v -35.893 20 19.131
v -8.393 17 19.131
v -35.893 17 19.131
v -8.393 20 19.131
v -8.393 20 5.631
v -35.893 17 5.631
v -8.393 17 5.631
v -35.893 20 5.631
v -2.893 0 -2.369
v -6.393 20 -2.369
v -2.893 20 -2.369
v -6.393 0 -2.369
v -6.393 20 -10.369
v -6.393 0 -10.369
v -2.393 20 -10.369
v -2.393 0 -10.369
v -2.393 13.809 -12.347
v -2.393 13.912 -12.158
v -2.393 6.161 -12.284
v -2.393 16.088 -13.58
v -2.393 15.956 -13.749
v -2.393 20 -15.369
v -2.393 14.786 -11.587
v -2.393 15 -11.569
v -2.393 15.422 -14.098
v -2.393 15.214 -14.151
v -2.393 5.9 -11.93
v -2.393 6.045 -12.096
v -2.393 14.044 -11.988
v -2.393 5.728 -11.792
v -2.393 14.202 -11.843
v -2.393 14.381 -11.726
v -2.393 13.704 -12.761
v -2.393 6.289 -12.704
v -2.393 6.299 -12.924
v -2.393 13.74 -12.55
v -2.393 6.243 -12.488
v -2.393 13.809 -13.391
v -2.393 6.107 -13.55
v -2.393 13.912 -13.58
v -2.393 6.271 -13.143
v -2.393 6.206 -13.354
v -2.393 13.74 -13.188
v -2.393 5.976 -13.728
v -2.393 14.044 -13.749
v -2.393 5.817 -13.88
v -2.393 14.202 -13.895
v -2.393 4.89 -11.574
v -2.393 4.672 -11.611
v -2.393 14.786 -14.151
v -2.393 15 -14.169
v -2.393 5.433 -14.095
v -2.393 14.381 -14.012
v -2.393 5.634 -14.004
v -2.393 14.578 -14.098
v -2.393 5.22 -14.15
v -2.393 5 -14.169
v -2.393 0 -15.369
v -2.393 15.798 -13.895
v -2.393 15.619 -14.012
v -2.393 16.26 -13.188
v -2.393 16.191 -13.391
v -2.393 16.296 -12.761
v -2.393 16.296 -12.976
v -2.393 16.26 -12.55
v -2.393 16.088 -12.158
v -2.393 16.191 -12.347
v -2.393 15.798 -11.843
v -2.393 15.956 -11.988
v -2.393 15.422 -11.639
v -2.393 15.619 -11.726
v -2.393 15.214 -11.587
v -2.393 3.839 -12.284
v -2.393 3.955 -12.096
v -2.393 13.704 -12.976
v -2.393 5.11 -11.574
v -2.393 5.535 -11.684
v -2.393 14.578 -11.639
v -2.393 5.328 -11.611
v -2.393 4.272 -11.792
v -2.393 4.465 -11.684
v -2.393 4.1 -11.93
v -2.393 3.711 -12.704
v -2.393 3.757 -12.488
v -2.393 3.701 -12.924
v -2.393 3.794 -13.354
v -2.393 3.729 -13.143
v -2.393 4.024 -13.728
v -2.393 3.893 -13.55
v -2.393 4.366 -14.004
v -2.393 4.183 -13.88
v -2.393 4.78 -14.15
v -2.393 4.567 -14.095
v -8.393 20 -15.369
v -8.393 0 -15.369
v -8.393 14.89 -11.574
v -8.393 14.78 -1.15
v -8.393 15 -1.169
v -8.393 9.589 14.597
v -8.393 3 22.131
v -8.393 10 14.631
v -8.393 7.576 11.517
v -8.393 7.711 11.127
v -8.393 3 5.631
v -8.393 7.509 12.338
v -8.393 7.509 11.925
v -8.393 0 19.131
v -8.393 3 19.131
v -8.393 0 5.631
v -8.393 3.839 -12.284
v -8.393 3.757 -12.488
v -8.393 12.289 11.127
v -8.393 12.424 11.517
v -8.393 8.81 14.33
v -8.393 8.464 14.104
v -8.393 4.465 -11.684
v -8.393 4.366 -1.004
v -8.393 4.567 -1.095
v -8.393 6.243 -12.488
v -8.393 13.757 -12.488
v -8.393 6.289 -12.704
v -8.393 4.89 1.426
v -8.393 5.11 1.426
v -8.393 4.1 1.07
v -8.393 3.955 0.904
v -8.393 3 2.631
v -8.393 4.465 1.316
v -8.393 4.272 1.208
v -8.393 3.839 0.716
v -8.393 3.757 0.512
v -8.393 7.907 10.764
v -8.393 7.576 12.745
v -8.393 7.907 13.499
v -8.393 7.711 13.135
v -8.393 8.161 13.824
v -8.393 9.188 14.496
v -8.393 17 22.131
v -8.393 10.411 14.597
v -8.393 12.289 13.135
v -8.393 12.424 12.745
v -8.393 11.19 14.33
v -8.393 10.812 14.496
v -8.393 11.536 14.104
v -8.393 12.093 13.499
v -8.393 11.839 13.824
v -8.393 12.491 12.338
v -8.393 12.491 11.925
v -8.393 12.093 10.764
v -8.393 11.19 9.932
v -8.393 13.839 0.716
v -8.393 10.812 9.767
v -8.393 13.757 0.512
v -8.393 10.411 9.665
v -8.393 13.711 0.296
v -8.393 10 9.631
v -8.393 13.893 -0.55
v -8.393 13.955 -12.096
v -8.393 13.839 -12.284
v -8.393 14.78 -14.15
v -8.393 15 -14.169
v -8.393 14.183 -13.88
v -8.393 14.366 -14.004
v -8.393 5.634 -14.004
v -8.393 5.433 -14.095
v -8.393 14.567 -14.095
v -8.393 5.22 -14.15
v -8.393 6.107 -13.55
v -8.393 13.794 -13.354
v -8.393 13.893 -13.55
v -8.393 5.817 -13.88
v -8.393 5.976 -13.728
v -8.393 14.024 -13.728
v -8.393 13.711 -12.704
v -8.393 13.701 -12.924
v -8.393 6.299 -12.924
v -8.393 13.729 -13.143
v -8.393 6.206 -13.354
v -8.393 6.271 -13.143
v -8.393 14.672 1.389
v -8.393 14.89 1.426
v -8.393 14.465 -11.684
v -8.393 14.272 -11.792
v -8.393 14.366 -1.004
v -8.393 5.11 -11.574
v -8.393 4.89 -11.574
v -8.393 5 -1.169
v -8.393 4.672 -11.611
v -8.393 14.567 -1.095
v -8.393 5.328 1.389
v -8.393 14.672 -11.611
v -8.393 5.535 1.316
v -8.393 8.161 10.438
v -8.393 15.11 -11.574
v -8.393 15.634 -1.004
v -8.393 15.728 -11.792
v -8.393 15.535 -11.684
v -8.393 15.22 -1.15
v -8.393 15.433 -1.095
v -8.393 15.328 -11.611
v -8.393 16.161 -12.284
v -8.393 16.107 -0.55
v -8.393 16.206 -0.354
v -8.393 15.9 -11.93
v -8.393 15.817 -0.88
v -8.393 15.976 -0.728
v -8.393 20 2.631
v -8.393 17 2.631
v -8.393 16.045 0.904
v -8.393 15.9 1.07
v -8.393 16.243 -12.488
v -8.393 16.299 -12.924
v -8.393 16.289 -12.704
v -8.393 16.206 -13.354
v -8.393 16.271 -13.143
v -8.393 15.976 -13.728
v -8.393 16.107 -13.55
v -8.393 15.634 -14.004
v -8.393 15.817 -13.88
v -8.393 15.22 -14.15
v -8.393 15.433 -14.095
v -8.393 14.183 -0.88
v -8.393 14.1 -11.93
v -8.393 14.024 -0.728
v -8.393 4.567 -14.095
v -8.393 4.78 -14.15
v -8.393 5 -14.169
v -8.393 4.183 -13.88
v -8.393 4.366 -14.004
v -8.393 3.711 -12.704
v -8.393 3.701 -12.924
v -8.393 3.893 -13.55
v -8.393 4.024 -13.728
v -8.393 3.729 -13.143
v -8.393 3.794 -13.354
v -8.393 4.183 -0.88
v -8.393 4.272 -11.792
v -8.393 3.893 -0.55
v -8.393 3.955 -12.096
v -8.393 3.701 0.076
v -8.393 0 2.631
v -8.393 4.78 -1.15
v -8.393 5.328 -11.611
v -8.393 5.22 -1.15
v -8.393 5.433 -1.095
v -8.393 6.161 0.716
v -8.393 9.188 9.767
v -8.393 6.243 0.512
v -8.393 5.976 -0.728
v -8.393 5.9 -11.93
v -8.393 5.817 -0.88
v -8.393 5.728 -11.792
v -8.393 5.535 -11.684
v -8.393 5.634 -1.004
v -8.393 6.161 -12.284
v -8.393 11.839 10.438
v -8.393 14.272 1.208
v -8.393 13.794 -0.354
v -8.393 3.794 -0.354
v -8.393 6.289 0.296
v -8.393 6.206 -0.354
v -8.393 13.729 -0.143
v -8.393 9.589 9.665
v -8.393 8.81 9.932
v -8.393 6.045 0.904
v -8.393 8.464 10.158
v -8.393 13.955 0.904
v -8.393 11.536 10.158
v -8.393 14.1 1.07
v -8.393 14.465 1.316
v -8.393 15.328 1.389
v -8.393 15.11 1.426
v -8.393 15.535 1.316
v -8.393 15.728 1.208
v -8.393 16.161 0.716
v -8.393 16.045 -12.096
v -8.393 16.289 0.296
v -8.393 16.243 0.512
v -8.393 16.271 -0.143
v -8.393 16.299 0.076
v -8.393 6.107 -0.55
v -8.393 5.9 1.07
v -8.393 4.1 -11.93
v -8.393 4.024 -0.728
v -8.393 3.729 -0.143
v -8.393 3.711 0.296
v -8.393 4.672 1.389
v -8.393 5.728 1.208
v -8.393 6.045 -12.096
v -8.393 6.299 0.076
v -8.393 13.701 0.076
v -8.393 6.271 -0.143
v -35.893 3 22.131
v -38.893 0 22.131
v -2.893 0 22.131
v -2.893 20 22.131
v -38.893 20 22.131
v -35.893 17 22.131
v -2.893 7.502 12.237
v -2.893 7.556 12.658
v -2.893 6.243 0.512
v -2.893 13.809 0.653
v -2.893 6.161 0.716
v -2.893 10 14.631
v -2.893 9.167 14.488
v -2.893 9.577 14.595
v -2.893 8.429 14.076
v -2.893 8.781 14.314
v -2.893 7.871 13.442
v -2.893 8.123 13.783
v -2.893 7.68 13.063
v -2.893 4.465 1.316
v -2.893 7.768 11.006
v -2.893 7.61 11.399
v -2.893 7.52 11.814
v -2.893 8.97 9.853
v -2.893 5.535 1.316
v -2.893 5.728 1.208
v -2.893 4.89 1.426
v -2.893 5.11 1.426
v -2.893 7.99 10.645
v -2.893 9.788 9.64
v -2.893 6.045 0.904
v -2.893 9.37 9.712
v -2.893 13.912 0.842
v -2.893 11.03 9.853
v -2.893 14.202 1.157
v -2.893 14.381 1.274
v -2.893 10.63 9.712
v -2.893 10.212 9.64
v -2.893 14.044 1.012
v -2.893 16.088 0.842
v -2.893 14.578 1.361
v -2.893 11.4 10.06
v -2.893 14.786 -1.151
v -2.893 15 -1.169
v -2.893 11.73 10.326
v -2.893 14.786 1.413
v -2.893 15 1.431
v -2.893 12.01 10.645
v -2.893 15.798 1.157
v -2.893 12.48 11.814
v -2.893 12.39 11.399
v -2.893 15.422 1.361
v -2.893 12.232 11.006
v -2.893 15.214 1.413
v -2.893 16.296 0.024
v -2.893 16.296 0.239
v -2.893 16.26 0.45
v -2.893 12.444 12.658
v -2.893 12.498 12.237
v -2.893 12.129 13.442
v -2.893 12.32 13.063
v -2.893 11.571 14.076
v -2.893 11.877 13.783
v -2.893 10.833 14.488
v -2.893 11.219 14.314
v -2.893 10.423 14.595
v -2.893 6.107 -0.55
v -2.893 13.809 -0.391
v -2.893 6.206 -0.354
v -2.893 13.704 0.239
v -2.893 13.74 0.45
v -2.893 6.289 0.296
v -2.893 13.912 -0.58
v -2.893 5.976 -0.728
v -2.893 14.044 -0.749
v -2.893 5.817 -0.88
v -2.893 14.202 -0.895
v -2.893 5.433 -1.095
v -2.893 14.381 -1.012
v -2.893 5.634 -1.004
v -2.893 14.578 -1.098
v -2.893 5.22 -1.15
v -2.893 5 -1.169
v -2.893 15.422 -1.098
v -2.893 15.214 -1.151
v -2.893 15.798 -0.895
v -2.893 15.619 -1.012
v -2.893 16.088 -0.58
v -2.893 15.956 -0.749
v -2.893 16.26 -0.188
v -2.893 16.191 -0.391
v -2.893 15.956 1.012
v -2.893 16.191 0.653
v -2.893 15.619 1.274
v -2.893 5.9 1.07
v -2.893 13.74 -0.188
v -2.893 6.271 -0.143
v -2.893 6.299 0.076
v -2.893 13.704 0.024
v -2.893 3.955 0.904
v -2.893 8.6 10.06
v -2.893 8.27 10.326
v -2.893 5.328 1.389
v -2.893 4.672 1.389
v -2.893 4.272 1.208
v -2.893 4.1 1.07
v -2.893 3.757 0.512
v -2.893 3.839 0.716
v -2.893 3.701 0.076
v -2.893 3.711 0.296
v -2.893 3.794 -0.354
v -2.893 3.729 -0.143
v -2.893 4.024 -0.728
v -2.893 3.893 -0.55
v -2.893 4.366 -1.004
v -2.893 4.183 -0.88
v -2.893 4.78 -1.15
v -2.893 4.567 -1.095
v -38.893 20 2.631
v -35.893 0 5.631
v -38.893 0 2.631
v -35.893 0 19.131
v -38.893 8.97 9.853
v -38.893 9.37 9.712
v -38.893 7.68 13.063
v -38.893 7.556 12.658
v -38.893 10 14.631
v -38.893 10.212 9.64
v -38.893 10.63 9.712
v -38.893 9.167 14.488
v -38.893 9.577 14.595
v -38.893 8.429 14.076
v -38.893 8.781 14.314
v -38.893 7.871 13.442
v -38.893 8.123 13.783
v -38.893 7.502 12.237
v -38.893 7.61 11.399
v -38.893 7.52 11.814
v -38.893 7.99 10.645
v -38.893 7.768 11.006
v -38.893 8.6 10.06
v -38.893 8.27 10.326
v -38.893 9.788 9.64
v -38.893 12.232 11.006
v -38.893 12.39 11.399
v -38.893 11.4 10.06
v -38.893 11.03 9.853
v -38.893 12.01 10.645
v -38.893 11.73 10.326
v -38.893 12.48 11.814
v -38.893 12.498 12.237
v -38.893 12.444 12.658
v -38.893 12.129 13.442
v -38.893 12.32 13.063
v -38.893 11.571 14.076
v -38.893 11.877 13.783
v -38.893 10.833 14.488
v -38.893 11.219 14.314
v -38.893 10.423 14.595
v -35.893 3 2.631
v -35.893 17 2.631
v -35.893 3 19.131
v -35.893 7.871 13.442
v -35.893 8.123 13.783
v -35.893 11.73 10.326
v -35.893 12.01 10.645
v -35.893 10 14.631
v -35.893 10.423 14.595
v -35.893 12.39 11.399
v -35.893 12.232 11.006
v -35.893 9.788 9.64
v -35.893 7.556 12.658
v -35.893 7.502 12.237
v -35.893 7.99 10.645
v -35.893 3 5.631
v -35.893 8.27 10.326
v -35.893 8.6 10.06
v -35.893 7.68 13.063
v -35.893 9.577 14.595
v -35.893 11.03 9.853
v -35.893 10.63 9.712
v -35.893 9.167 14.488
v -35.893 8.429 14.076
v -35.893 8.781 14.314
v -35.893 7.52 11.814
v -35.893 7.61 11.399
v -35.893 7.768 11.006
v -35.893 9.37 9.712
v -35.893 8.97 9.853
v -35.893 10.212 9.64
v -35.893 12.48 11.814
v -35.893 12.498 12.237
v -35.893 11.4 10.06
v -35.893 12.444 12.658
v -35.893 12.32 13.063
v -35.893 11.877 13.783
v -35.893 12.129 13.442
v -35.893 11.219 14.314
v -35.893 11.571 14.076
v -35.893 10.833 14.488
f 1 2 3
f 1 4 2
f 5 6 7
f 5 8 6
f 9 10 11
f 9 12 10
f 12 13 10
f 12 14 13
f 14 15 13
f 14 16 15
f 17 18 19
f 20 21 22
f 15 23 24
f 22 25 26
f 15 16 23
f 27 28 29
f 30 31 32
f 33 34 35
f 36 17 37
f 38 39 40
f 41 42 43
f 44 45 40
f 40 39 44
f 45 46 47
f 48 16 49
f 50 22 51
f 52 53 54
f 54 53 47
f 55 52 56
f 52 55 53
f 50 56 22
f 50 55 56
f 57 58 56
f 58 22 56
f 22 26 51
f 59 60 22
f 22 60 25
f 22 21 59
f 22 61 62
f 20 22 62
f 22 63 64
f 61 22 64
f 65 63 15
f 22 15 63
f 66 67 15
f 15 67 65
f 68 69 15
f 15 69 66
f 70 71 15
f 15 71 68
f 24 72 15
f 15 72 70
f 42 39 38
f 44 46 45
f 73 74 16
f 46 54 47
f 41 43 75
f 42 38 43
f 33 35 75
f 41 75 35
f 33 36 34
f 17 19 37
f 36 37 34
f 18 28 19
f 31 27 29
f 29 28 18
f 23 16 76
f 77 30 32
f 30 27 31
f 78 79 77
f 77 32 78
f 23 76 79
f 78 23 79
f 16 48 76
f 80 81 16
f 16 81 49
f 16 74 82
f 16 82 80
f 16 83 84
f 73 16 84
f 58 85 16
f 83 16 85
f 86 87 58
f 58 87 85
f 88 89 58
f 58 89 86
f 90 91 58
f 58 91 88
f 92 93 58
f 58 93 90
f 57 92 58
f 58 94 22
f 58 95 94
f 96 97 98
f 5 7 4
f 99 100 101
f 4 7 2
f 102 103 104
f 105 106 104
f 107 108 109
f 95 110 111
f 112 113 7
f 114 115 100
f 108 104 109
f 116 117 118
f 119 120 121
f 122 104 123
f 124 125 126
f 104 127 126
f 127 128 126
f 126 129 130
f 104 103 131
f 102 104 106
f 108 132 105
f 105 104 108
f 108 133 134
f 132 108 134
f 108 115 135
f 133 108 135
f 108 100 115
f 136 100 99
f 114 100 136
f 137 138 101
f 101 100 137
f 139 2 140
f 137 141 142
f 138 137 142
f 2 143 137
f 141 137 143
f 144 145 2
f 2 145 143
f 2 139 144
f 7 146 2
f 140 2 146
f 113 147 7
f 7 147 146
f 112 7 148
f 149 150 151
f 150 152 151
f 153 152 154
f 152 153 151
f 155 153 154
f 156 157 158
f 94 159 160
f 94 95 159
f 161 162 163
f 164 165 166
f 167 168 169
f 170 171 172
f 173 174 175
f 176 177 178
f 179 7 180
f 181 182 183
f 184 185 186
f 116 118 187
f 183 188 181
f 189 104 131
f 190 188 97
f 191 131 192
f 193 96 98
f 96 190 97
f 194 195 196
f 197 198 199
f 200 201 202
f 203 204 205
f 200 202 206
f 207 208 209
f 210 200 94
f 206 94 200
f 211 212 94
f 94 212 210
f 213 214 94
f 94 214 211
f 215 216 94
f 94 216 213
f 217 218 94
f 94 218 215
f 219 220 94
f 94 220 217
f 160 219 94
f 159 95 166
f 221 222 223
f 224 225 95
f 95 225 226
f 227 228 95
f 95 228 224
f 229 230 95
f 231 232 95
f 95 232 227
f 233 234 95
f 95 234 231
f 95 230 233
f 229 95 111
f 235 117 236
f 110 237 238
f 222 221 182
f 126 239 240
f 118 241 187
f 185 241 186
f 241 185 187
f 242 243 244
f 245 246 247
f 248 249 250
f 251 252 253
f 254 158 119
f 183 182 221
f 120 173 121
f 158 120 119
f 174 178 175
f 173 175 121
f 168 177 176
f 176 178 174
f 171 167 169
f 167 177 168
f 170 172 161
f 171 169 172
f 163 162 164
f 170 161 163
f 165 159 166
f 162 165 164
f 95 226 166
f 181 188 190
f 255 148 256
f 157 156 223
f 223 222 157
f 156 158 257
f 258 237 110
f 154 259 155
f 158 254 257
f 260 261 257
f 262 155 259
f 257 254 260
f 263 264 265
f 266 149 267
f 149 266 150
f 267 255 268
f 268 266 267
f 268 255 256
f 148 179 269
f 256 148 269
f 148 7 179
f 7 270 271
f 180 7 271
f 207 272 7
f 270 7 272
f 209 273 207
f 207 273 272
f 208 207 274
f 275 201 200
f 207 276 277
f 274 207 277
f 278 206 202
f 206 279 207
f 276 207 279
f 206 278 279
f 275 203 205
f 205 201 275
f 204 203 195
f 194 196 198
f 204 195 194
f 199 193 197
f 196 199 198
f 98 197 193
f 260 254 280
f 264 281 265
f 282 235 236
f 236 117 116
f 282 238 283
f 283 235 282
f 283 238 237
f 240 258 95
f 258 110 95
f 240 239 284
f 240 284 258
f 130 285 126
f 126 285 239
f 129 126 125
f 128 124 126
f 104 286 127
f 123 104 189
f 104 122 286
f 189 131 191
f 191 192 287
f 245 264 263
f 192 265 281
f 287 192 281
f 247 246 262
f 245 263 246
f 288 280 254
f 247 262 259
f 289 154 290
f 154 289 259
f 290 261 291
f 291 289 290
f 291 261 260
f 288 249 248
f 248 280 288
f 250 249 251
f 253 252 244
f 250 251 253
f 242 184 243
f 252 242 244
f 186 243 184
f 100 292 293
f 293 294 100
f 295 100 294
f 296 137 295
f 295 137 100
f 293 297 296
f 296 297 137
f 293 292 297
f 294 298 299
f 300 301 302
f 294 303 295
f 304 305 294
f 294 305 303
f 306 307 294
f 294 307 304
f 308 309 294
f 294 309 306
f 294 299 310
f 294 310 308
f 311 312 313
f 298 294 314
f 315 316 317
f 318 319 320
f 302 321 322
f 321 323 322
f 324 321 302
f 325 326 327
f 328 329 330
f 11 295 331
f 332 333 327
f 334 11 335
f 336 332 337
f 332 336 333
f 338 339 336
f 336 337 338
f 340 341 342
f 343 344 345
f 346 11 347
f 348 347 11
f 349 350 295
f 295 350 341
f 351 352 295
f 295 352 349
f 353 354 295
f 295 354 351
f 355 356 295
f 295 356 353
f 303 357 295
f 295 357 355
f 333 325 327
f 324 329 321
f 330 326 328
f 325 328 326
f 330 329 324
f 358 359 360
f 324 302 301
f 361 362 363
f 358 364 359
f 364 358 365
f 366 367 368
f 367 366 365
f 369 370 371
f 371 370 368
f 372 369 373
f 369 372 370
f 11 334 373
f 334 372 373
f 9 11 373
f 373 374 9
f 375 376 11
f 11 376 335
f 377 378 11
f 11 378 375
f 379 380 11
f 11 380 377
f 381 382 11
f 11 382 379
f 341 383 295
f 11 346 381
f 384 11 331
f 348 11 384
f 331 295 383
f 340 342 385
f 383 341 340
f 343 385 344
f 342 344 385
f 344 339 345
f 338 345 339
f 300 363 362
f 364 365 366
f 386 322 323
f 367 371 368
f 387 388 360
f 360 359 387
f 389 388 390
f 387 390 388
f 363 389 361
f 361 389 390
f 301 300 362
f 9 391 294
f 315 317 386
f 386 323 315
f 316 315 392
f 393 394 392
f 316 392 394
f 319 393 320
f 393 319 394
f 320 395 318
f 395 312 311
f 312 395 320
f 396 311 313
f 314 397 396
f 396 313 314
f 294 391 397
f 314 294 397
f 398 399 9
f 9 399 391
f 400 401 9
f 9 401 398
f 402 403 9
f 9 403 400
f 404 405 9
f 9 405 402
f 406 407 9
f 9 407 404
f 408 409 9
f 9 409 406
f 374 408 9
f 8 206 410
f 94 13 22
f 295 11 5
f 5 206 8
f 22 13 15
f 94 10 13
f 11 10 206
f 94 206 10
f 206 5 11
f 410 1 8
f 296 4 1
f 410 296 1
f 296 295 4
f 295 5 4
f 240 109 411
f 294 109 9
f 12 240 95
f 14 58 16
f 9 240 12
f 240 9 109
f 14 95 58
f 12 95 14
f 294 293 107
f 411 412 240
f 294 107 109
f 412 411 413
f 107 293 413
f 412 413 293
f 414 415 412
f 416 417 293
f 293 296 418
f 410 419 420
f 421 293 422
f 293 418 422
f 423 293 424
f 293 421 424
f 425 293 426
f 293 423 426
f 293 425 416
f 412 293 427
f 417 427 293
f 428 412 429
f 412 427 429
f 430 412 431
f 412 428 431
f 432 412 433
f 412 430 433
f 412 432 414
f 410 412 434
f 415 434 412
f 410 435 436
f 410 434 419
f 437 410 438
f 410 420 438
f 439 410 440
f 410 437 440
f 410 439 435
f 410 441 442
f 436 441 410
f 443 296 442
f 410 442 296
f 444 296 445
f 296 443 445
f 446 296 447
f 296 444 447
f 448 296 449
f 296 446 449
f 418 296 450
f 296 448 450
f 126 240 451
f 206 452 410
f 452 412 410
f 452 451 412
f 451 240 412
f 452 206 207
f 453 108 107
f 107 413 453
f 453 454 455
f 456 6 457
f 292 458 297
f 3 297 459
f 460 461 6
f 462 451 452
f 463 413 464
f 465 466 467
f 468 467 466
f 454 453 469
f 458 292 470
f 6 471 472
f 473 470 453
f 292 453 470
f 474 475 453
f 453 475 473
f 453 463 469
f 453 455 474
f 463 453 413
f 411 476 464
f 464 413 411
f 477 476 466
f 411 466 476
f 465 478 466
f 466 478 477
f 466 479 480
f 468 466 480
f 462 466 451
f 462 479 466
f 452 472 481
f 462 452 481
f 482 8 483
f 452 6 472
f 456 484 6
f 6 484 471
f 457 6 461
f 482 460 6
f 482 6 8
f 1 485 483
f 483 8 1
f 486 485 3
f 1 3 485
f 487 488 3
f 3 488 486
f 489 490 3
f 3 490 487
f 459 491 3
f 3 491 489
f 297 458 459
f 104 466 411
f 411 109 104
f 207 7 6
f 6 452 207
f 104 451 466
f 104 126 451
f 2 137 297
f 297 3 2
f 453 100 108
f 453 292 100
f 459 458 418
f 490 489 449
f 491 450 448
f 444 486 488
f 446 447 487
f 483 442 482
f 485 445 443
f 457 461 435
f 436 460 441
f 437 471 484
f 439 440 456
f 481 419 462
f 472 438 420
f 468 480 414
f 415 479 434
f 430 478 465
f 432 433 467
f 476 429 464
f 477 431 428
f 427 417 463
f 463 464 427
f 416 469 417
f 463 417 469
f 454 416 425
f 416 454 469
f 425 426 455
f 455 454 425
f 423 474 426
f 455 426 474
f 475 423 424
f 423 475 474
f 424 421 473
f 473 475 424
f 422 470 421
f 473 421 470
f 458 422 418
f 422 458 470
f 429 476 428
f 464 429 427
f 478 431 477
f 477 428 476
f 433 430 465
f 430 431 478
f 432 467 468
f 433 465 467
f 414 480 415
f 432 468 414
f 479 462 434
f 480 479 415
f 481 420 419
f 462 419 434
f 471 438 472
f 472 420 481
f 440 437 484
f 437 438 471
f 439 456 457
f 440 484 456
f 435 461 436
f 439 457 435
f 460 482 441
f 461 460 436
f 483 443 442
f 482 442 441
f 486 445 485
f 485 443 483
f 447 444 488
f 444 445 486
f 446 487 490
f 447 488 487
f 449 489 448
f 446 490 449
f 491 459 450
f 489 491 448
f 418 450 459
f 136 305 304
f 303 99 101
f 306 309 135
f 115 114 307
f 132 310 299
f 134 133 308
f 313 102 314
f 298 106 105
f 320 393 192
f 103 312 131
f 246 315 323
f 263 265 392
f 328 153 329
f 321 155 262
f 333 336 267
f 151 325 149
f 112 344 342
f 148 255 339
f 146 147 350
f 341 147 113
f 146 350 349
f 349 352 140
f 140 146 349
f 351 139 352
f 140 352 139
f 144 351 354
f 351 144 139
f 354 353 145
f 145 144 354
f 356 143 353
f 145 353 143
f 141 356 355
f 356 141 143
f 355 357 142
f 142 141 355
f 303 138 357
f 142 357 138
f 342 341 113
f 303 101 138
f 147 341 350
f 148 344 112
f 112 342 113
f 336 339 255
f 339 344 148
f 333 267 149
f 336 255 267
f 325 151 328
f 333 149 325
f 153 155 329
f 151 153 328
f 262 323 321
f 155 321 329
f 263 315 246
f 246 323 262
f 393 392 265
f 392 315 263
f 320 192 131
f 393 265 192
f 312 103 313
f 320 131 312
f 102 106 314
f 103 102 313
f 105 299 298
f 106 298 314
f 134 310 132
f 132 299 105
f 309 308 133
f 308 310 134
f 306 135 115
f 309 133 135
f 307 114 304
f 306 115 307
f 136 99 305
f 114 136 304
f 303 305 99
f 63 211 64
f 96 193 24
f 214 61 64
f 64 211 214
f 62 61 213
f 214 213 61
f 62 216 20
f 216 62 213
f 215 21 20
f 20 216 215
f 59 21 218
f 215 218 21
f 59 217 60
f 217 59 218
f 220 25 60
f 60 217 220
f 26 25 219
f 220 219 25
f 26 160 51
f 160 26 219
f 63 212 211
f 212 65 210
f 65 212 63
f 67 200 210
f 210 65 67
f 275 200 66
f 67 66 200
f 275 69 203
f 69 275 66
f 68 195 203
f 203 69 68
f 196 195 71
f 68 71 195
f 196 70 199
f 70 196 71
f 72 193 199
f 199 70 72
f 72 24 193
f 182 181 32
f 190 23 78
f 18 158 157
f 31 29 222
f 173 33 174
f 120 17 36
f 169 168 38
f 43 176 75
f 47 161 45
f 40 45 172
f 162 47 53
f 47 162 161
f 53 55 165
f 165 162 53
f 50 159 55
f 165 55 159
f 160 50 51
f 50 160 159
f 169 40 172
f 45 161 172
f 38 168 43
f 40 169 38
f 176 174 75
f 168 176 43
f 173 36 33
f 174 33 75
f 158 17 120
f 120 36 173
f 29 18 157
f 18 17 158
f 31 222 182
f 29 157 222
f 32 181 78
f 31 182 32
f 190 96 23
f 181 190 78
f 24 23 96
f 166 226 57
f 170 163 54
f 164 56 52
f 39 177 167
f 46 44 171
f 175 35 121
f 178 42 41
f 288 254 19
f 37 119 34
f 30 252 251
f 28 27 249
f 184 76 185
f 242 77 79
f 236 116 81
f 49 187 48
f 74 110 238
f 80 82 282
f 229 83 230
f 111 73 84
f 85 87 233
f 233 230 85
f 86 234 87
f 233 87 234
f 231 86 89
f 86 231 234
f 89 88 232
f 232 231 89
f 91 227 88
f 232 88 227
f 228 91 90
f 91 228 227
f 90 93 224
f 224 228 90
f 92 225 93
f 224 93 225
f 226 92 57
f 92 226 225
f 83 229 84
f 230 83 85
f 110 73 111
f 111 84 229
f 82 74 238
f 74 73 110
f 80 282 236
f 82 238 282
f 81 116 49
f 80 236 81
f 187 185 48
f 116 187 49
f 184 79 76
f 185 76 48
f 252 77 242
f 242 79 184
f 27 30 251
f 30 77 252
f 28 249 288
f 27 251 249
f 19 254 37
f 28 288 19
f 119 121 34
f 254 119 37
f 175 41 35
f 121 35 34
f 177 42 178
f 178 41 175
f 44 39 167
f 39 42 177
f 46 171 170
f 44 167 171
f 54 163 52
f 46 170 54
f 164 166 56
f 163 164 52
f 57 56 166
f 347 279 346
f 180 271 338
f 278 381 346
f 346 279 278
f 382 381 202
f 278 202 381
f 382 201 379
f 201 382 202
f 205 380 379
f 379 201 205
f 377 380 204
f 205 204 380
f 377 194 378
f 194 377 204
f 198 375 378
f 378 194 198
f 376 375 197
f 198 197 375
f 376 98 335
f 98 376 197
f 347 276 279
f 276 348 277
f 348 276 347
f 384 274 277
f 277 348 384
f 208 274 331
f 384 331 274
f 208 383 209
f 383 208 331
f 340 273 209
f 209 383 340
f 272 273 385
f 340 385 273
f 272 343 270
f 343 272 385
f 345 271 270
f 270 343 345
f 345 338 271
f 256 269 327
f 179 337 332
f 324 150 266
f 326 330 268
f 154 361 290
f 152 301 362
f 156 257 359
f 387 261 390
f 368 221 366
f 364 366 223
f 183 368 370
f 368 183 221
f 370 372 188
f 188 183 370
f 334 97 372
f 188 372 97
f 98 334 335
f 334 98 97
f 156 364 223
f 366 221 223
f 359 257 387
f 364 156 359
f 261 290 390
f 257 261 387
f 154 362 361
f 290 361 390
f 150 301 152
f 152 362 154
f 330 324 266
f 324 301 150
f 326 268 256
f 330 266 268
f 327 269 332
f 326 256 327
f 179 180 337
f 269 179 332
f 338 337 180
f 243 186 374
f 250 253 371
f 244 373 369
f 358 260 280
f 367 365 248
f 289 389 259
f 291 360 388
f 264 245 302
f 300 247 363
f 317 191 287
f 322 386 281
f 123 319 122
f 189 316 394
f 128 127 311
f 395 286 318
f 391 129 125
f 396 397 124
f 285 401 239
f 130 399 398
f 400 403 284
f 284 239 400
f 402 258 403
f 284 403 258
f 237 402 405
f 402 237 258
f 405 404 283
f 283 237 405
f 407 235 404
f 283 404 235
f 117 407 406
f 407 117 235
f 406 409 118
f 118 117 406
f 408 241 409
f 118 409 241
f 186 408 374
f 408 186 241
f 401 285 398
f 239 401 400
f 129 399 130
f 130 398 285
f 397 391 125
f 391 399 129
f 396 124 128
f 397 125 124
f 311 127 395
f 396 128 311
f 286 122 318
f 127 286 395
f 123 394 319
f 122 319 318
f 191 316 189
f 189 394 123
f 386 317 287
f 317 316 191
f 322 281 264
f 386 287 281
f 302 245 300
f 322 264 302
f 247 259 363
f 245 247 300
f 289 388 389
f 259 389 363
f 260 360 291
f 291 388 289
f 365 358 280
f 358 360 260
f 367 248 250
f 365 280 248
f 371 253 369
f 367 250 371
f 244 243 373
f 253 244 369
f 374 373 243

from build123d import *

# Parameters (mm, degrees)
BOSS_EXTRUDE1_DEPTH = 20
SKETCH4_W           = 30.5
SKETCH4_H           = 19.5
BOSS_EXTRUDE2_DEPTH = 20
CUT_EXTRUDE1_REACH  = 51.015
SKETCH6_W           = 27.5
SKETCH6_H           = 13.5
SKETCH7_W           = 27.5
SKETCH7_H           = 14
CUT_EXTRUDE2_DEPTH  = 58.610327885
SKETCH9_R           = 2.5
CUT_EXTRUDE3_DEPTH  = 48.138494794
CUT_EXTRUDE4_REACH  = 49.138
SKETCH10_R          = 1.3
CUT_EXTRUDE5_REACH  = 48.752
SKETCH11_R          = 1.3


with BuildPart() as part:
    # Sketch1 → Boss-Extrude1 (new body)
    with BuildSketch(Plane(origin=(0, 0, 0), x_dir=(-1, 0, 0), z_dir=(0, 1, 0))):
        Polygon((2.893442623, -2.368852459), (2.893442623, 22.131147541), (8.393442623, 22.131147541), (8.393442623, -15.368852459), (2.393442623, -15.368852459), (2.393442623, -10.368852459), (6.393442623, -10.368852459), (6.393442623, -2.368852459), align=None)
    extrude(amount=BOSS_EXTRUDE1_DEPTH)

    # Sketch4 → Boss-Extrude2 (add)
    with BuildSketch(Plane(origin=(0, 20, 0), x_dir=(-1, 0, 0), z_dir=(0, 1, 0))):
        with Locations((23.643442623, 12.381147541)):
            Rectangle(SKETCH4_W, SKETCH4_H)
    extrude(amount=-BOSS_EXTRUDE2_DEPTH)

    # Sketch6 → Cut-Extrude1 (cut, up to next)
    with BuildSketch(Plane(origin=(0, 20, 0), x_dir=(-1, 0, 0), z_dir=(0, 1, 0)), mode=Mode.PRIVATE) as cut_extrude1_sk1:
        with Locations((22.143442623, 12.381147541)):
            Rectangle(SKETCH6_W, SKETCH6_H)
    cut_extrude1_tool1 = extrude(cut_extrude1_sk1.sketch, amount=-CUT_EXTRUDE1_REACH, mode=Mode.PRIVATE) & part.part
    add(cut_extrude1_tool1.solids().sort_by_distance((-22.143443, 20, 12.381148))[0], mode=Mode.SUBTRACT)

    # Sketch7 → Cut-Extrude2 (cut, through all)
    with BuildSketch(Plane.XY.offset(22.131147541)):
        with Locations((-22.143442623, 10)):
            Rectangle(SKETCH7_W, SKETCH7_H)
    extrude(amount=-CUT_EXTRUDE2_DEPTH, mode=Mode.SUBTRACT)

    # Sketch9 → Cut-Extrude3 (cut, through all)
    with BuildSketch(Plane(origin=(-38.893442623, 0, 0), x_dir=(0, -1, 0), z_dir=(-1, 0, 0))):
        with Locations(Location((-10, 12.131147541, 0), (0, 0, 90))):
            Circle(SKETCH9_R)
    extrude(amount=-CUT_EXTRUDE3_DEPTH, mode=Mode.SUBTRACT)

    # Sketch10 → Cut-Extrude4 (cut, up to next)
    with BuildSketch(Plane.YZ.offset(-2.393442623), mode=Mode.PRIVATE) as cut_extrude4_sk1:
        with Locations(Location((5, -12.868852459, 0), (0, 0, 270))):
            Circle(SKETCH10_R)
    cut_extrude4_tool1 = extrude(cut_extrude4_sk1.sketch, amount=-CUT_EXTRUDE4_REACH, mode=Mode.PRIVATE) & part.part
    # Sketch10 → Cut-Extrude4 (cut, up to next)
    with BuildSketch(Plane.YZ.offset(-2.393442623), mode=Mode.PRIVATE) as cut_extrude4_sk2:
        with Locations(Location((15, -12.868852459, 0), (0, 0, 270))):
            Circle(SKETCH10_R)
    cut_extrude4_tool2 = extrude(cut_extrude4_sk2.sketch, amount=-CUT_EXTRUDE4_REACH, mode=Mode.PRIVATE) & part.part
    add(cut_extrude4_tool1.solids().sort_by_distance((-2.393443, 5, -12.868852))[0], mode=Mode.SUBTRACT)
    add(cut_extrude4_tool2.solids().sort_by_distance((-2.393443, 15, -12.868852))[0], mode=Mode.SUBTRACT)

    # Sketch11 → Cut-Extrude5 (cut, up to next)
    with BuildSketch(Plane.YZ.offset(-2.893442623), mode=Mode.PRIVATE) as cut_extrude5_sk1:
        with Locations(Location((5, 0.131147541, 0), (0, 0, 270))):
            Circle(SKETCH11_R)
    cut_extrude5_tool1 = extrude(cut_extrude5_sk1.sketch, amount=-CUT_EXTRUDE5_REACH, mode=Mode.PRIVATE) & part.part
    # Sketch11 → Cut-Extrude5 (cut, up to next)
    with BuildSketch(Plane.YZ.offset(-2.893442623), mode=Mode.PRIVATE) as cut_extrude5_sk2:
        with Locations(Location((15, 0.131147541, 0), (0, 0, 270))):
            Circle(SKETCH11_R)
    cut_extrude5_tool2 = extrude(cut_extrude5_sk2.sketch, amount=-CUT_EXTRUDE5_REACH, mode=Mode.PRIVATE) & part.part
    add(cut_extrude5_tool1.solids().sort_by_distance((-2.893443, 5, 0.131148))[0], mode=Mode.SUBTRACT)
    add(cut_extrude5_tool2.solids().sort_by_distance((-2.893443, 15, 0.131148))[0], mode=Mode.SUBTRACT)


solid = part.part
